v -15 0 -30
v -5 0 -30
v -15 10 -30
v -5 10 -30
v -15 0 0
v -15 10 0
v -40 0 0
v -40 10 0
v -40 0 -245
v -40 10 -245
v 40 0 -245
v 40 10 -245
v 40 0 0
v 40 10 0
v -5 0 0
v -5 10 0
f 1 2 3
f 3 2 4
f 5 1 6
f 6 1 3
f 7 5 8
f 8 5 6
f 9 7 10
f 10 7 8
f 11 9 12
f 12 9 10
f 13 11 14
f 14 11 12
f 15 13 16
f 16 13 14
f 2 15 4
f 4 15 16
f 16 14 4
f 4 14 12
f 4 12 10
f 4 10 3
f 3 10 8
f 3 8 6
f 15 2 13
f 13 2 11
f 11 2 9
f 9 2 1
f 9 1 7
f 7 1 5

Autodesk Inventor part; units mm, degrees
ref_plane "YZ Plane" through (0, 0, 0) normal (1, 0, 0) x (0, 1, 0)
ref_plane "XZ Plane" through (0, 0, 0) normal (0, 1, 0) x (-1, 0, 0)
ref_plane "XY Plane" through (0, 0, 0) normal (0, 0, 1) x (1, 0, 0)
sketch "草图1" plane through (0, 0, 0) normal (0, 1, 0) x (-1, 0, 0)
  line L0 (40, 245) -> (-40, 245)
  line L1 (-40, 245) -> (-40, -245)
  line L2 (-40, -245) -> (40, -245)
  line L3 (40, -245) -> (40, 245)
  line L4 (0, 5.532) -> (0, -5.7915)
  line L5 (3, 0) -> (-2, 0)
  line L6 (40, 0) -> (-40, 0)
  line L7 (15, 30) -> (5, 30)
  line L8 (5, 30) -> (5, -30)
  line L9 (5, -30) -> (15, -30)
  line L10 (15, -30) -> (15, 30)
  point P0 (0, 0)
  point P1 (0, 0)
  point P2 (0, 0)
  point P3 (0, 0)
  point P4 (5, 0)
  point P5 (-2, 0)
  point P6 (15, 0)
  dimension "d0" = 80
  dimension "d1" = 490
  dimension "d2" = 10
  dimension "d3" = 60
  dimension "d4" = 25
extrude "拉伸1" add sketch "草图1" along normal blind 10 contours L3 L2 L1 L6 L5 L8 L9 L10
properties part number "back_2"
